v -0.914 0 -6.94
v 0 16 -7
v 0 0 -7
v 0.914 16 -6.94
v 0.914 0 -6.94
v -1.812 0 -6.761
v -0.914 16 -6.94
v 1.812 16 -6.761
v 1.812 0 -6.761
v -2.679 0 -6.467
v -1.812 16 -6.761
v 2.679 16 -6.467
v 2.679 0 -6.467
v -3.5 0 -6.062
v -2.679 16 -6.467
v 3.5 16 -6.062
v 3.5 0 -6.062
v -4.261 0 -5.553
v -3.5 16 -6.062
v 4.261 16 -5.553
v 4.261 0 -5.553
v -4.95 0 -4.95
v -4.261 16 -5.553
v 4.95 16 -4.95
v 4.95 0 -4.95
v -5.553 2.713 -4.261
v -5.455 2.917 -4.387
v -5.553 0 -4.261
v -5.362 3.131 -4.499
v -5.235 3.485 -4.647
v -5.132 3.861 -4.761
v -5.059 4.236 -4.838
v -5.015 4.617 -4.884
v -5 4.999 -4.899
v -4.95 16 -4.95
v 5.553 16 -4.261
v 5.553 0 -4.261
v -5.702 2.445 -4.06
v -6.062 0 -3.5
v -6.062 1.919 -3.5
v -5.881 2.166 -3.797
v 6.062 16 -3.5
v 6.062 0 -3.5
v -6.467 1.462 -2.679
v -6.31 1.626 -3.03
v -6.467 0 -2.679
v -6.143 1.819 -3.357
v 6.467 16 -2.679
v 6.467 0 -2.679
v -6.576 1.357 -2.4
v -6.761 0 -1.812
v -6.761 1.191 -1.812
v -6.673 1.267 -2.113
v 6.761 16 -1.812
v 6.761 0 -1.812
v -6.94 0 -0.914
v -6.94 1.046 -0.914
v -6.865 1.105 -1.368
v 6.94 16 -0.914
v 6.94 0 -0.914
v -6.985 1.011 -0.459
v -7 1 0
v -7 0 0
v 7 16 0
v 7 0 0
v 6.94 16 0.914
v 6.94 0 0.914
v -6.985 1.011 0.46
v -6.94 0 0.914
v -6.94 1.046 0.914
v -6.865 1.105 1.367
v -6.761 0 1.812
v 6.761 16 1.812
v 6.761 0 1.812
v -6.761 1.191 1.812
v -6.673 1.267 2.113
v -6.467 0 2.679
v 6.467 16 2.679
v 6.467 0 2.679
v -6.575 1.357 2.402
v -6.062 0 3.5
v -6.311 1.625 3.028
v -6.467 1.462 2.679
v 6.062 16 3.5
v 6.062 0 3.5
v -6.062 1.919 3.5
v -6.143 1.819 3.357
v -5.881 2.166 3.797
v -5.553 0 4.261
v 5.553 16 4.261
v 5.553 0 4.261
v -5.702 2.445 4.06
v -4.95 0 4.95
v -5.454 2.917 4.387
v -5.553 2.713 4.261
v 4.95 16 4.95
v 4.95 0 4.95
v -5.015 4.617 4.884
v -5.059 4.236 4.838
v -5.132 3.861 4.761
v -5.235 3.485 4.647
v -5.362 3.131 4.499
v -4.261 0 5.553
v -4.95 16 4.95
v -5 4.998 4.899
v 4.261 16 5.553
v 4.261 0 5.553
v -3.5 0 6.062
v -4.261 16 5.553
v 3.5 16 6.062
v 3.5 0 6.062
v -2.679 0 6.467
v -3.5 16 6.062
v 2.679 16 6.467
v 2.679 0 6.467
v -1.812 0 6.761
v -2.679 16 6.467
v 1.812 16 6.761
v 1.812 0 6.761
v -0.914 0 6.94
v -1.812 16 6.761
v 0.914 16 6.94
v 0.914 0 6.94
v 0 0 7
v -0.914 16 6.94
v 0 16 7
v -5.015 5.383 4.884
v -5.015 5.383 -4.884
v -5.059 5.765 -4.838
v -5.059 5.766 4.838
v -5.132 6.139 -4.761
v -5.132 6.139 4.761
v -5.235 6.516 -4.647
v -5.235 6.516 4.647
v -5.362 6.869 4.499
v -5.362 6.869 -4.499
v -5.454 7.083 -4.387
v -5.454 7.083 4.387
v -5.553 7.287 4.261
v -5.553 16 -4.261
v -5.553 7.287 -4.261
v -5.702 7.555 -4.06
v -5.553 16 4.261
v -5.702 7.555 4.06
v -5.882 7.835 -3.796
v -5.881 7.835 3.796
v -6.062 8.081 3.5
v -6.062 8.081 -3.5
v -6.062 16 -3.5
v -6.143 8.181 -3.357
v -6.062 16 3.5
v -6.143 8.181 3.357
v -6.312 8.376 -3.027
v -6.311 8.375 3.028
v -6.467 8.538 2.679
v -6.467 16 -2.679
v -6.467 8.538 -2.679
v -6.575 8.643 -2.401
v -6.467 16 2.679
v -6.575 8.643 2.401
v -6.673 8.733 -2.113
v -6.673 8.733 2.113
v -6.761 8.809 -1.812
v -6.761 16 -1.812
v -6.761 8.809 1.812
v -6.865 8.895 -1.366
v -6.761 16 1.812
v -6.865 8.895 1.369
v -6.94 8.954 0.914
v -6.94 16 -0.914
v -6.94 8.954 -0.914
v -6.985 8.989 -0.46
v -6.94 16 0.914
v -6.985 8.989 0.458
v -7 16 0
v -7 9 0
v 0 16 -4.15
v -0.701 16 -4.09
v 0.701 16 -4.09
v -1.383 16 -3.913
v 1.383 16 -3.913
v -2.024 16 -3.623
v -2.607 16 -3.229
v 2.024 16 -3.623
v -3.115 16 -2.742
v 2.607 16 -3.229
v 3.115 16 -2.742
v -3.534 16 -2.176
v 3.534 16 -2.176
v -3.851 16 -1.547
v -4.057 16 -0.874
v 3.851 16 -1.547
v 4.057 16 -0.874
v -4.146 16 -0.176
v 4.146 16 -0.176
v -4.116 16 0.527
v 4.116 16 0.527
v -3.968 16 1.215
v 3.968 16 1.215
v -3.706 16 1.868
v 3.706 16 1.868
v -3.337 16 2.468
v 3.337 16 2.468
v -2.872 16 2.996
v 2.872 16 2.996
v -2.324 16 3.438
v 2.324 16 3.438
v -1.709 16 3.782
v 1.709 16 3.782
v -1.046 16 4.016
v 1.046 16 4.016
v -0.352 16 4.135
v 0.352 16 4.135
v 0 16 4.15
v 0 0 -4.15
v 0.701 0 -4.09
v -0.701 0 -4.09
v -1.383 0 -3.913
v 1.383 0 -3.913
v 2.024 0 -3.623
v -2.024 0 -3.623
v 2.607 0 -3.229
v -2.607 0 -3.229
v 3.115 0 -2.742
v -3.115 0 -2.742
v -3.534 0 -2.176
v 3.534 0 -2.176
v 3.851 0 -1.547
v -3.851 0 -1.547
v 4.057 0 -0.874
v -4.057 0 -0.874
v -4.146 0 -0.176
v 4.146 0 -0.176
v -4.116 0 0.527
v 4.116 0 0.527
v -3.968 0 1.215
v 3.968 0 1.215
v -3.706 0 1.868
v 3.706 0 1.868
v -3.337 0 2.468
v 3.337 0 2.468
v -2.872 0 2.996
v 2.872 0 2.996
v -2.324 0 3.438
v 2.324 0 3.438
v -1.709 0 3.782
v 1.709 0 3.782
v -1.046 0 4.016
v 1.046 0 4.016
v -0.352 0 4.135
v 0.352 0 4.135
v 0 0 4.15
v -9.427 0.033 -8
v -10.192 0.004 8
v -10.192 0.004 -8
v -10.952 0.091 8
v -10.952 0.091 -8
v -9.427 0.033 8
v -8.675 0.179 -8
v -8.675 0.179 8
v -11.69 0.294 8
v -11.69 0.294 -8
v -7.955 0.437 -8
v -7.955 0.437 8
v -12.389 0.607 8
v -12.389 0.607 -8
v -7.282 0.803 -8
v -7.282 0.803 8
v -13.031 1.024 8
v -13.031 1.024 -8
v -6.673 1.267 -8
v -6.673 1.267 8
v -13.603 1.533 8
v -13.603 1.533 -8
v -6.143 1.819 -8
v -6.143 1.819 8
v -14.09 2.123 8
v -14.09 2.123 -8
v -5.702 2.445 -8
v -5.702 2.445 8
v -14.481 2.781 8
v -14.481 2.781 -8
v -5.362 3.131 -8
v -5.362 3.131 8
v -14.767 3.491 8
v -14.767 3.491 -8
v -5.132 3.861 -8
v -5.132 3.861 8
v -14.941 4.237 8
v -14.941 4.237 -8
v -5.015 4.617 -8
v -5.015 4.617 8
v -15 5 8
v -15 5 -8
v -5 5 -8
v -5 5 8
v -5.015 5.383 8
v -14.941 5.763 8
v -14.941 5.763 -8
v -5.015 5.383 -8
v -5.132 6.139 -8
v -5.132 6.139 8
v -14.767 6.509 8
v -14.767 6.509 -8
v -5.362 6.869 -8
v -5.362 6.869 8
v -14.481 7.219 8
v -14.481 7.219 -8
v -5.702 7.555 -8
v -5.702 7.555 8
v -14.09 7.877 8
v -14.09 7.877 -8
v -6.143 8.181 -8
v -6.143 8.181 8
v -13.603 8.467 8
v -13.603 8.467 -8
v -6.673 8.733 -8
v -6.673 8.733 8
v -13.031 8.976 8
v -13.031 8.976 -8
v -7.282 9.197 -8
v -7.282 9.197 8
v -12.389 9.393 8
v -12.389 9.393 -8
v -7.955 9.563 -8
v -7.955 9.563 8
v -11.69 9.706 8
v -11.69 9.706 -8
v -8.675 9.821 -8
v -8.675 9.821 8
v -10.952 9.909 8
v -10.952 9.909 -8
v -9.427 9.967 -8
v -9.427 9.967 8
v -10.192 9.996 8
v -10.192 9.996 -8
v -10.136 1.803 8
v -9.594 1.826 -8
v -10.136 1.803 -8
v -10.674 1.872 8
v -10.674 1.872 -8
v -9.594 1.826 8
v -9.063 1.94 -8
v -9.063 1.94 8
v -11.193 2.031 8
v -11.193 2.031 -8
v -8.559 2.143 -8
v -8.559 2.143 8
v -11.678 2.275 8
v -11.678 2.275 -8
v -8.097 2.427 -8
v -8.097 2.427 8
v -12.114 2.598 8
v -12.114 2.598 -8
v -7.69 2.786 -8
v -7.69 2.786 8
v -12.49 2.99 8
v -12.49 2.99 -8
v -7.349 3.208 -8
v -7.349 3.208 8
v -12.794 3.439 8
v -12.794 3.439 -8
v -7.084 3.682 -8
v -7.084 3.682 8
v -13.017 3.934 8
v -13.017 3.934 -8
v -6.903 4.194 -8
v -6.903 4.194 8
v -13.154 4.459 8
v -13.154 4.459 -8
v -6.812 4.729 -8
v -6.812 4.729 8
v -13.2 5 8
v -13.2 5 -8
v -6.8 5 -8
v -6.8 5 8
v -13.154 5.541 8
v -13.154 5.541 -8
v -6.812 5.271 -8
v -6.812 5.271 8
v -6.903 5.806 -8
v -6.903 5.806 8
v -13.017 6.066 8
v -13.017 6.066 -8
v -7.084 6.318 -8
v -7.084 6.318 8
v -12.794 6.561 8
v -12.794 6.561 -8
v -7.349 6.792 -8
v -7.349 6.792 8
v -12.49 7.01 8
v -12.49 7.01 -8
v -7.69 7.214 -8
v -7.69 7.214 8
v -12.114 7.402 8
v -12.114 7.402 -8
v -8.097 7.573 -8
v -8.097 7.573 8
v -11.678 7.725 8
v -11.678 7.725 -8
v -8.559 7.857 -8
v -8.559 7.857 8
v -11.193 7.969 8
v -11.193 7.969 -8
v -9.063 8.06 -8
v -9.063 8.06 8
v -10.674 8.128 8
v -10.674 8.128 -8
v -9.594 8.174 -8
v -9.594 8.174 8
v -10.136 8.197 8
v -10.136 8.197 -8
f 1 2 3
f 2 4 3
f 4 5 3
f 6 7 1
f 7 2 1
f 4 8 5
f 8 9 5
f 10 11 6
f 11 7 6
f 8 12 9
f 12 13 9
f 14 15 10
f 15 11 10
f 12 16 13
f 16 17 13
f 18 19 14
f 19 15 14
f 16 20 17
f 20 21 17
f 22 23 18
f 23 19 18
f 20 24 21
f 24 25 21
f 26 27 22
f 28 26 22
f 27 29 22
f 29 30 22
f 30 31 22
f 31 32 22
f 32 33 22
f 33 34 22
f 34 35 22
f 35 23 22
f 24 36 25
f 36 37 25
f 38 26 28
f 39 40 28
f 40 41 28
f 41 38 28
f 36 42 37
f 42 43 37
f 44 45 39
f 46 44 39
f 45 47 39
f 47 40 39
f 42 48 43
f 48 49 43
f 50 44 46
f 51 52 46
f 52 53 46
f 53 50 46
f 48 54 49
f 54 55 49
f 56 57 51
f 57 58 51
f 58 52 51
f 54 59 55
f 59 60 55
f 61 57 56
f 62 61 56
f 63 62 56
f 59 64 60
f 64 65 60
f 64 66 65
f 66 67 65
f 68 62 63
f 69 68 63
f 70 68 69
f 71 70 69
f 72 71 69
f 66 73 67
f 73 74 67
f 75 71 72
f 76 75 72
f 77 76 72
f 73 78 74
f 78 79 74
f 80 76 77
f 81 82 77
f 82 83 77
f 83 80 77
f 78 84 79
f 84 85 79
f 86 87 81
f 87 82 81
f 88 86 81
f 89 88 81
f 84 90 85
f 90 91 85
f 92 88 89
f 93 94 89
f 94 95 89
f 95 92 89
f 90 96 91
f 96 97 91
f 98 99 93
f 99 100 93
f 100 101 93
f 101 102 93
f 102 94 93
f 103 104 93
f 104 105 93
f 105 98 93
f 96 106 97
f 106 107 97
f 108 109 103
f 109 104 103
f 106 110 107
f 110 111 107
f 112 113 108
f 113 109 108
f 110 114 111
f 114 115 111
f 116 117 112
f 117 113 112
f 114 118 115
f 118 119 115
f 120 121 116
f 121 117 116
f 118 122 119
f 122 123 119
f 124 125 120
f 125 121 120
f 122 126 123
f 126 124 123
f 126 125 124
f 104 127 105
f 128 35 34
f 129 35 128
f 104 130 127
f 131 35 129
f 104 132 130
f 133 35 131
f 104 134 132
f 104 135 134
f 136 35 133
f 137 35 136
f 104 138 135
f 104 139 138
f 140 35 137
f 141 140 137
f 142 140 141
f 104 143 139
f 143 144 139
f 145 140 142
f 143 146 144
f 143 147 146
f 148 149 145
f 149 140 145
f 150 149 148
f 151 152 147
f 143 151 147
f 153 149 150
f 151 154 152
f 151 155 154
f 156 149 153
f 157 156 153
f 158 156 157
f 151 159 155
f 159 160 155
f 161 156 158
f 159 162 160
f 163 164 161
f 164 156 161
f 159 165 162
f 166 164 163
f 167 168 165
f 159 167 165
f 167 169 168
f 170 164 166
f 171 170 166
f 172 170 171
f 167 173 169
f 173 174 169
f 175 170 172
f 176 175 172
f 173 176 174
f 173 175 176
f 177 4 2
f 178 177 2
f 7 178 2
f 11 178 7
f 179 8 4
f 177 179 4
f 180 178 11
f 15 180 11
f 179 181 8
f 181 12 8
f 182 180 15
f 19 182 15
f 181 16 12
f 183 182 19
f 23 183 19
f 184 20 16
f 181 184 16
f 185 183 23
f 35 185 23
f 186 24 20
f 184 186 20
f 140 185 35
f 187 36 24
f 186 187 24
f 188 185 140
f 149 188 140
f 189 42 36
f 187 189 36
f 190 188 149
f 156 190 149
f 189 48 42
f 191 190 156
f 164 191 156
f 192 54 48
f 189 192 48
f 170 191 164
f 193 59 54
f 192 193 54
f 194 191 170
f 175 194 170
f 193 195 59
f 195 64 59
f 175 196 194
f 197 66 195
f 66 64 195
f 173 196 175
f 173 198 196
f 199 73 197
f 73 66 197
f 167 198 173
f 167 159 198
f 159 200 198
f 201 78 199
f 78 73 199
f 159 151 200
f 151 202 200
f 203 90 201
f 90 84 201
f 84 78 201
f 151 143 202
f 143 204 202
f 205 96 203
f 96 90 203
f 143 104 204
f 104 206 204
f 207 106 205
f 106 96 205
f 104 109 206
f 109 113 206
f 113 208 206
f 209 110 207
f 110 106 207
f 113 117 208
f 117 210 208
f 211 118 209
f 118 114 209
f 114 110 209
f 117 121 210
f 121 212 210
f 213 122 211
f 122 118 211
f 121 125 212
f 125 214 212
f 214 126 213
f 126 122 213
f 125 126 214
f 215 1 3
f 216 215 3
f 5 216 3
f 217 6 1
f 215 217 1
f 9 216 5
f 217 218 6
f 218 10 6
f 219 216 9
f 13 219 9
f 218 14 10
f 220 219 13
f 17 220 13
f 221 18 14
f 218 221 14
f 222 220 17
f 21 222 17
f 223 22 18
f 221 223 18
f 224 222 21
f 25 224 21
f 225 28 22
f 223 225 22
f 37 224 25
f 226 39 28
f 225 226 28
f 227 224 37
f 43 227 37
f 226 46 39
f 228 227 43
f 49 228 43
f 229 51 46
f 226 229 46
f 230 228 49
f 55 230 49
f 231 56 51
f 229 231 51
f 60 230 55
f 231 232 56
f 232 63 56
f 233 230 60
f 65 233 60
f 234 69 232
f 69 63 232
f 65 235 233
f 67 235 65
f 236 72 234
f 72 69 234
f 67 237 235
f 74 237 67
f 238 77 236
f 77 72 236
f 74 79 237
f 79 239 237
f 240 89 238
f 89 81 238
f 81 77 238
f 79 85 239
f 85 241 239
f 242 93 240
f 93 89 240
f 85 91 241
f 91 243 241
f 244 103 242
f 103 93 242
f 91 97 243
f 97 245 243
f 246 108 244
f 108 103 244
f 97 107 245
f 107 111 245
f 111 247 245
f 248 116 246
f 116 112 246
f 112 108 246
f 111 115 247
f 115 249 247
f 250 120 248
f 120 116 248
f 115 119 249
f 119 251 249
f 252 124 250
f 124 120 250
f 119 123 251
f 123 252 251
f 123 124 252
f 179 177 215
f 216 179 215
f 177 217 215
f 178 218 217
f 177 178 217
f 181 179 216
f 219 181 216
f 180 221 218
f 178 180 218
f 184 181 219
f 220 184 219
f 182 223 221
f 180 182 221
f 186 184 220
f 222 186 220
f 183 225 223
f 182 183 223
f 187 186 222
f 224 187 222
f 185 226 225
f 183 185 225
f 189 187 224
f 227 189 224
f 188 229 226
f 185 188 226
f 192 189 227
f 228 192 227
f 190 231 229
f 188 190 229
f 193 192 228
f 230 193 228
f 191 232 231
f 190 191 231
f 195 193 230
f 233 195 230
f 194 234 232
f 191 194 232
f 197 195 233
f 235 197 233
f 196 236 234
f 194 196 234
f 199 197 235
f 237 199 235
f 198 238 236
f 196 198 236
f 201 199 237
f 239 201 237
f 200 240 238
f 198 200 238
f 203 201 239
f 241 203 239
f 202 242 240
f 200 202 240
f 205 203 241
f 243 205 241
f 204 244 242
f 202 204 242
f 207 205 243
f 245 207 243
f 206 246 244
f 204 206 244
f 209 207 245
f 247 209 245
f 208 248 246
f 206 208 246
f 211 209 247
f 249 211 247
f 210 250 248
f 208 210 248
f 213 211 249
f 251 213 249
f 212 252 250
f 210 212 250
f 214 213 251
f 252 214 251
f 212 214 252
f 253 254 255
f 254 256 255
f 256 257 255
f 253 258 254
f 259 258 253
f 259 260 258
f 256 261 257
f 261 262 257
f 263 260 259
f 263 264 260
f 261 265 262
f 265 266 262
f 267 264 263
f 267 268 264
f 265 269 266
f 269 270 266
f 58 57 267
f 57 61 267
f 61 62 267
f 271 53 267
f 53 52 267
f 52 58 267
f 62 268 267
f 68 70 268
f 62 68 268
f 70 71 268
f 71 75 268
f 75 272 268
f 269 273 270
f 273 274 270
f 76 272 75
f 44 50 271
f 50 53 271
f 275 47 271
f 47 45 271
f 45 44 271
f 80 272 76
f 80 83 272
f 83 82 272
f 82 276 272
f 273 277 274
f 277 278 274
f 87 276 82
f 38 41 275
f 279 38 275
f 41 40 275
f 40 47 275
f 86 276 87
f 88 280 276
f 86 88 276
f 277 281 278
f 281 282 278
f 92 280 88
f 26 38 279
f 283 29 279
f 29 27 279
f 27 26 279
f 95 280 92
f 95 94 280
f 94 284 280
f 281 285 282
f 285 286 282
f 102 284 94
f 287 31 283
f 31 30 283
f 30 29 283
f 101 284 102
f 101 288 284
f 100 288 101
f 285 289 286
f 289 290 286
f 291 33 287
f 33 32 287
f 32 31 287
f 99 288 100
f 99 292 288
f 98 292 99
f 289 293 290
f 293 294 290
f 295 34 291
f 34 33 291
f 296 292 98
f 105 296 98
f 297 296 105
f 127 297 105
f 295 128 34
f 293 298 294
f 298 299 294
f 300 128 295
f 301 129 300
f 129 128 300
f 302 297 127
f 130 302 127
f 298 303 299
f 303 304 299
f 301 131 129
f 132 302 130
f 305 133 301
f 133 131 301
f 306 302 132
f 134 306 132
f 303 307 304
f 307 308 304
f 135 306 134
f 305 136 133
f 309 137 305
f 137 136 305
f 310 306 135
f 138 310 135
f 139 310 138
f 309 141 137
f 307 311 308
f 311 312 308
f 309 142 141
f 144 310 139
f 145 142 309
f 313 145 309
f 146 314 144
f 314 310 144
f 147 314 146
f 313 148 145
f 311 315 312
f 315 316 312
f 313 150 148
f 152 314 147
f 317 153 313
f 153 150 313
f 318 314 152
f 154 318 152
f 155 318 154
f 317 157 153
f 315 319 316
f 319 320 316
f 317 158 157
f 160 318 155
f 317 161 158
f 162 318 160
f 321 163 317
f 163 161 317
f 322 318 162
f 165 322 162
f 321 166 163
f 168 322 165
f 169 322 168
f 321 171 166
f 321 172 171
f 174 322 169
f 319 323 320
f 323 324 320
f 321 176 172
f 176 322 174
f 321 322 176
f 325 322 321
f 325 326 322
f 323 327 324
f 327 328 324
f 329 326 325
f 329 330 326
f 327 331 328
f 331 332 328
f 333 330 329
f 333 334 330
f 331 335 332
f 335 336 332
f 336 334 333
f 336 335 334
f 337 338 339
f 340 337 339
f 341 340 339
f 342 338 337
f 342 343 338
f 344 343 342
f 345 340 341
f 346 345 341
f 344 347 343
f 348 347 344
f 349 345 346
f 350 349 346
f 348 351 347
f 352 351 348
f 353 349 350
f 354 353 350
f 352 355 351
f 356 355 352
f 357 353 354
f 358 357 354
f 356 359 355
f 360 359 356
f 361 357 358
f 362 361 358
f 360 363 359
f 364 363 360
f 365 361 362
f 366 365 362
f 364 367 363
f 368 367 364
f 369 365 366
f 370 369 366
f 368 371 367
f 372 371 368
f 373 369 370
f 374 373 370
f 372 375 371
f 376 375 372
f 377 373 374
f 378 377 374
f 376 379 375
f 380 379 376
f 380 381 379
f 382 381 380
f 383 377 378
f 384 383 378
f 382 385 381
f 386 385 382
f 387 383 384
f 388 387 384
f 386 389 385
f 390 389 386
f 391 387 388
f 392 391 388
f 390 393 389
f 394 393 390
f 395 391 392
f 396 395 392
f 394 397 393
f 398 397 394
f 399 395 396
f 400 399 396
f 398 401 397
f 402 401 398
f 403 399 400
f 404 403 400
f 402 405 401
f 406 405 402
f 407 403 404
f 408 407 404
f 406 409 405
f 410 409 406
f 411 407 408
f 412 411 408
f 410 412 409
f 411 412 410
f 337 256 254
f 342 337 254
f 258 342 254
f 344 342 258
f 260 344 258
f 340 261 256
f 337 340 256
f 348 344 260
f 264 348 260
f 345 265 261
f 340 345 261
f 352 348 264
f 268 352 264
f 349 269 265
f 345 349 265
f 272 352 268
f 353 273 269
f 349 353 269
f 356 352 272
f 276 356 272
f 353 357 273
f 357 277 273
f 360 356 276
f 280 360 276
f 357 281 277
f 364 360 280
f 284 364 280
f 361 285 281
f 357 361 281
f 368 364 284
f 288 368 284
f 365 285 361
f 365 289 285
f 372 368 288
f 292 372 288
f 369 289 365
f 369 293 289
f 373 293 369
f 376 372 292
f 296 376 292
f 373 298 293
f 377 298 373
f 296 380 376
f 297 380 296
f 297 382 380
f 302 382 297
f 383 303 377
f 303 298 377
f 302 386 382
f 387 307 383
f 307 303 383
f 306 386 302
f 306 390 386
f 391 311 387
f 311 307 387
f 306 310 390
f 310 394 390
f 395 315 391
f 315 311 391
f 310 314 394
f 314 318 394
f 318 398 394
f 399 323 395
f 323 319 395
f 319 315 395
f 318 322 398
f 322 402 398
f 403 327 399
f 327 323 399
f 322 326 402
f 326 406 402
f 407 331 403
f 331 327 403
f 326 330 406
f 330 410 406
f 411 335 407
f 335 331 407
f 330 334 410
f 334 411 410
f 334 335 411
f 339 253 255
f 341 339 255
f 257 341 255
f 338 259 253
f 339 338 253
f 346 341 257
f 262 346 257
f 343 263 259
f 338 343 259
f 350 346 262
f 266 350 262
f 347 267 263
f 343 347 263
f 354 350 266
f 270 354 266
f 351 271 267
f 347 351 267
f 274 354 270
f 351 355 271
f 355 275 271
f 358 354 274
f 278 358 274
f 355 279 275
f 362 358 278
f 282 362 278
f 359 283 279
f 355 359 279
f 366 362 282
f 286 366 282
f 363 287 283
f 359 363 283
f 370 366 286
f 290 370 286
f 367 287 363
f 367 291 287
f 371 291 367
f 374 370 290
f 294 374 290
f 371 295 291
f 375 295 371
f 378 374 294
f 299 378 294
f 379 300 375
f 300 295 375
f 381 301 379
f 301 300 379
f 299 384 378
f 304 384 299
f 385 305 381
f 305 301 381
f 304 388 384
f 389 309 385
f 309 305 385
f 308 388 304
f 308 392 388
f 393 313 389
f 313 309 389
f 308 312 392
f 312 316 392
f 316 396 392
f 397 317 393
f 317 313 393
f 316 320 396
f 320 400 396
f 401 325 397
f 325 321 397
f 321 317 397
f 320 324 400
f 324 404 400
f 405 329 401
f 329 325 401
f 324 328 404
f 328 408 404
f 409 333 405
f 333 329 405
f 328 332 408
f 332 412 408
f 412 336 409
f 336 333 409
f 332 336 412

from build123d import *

# Parameters (mm, degrees)
SKETCH3_R               = 7
SKETCH3_R_2             = 4.15
BOSS_EXTRUDE1_DEPTH     = 16
SKETCH4_R               = 5
SKETCH4_R_2             = 3.2
BOSS_EXTRUDE2_DEPTH     = 8
CUT_EXTRUDE1_DEPTH      = 24.345235227
CUT_EXTRUDE1_DEPTH_BACK = 24.345235227
SKETCH4_2_R             = 3.2


with BuildPart() as part:
    # Sketch3 → Boss-Extrude1 (new body)
    with BuildSketch(Plane(origin=(0, 0, 0), x_dir=(1, 0, 0), z_dir=(0, 1, 0))):
        Circle(SKETCH3_R)
        Circle(SKETCH3_R_2, mode=Mode.SUBTRACT)
    extrude(amount=BOSS_EXTRUDE1_DEPTH)

    # Sketch4 → Boss-Extrude2 (add, symmetric)
    with BuildSketch(Plane.XY):
        with Locations((-10, 5)):
            Circle(SKETCH4_R)
        with Locations((-10, 5)):
            Circle(SKETCH4_R_2, mode=Mode.SUBTRACT)
    extrude(amount=BOSS_EXTRUDE2_DEPTH, both=True)

    # Sketch4<2> → Cut-Extrude1 (cut, two sides: drawn at the far end of the back side and taken through both)
    with BuildSketch(Plane.XY.offset(-CUT_EXTRUDE1_DEPTH_BACK)):
        with Locations((-10, 5)):
            Circle(SKETCH4_2_R)
    extrude(amount=CUT_EXTRUDE1_DEPTH + CUT_EXTRUDE1_DEPTH_BACK, mode=Mode.SUBTRACT)


solid = part.part
